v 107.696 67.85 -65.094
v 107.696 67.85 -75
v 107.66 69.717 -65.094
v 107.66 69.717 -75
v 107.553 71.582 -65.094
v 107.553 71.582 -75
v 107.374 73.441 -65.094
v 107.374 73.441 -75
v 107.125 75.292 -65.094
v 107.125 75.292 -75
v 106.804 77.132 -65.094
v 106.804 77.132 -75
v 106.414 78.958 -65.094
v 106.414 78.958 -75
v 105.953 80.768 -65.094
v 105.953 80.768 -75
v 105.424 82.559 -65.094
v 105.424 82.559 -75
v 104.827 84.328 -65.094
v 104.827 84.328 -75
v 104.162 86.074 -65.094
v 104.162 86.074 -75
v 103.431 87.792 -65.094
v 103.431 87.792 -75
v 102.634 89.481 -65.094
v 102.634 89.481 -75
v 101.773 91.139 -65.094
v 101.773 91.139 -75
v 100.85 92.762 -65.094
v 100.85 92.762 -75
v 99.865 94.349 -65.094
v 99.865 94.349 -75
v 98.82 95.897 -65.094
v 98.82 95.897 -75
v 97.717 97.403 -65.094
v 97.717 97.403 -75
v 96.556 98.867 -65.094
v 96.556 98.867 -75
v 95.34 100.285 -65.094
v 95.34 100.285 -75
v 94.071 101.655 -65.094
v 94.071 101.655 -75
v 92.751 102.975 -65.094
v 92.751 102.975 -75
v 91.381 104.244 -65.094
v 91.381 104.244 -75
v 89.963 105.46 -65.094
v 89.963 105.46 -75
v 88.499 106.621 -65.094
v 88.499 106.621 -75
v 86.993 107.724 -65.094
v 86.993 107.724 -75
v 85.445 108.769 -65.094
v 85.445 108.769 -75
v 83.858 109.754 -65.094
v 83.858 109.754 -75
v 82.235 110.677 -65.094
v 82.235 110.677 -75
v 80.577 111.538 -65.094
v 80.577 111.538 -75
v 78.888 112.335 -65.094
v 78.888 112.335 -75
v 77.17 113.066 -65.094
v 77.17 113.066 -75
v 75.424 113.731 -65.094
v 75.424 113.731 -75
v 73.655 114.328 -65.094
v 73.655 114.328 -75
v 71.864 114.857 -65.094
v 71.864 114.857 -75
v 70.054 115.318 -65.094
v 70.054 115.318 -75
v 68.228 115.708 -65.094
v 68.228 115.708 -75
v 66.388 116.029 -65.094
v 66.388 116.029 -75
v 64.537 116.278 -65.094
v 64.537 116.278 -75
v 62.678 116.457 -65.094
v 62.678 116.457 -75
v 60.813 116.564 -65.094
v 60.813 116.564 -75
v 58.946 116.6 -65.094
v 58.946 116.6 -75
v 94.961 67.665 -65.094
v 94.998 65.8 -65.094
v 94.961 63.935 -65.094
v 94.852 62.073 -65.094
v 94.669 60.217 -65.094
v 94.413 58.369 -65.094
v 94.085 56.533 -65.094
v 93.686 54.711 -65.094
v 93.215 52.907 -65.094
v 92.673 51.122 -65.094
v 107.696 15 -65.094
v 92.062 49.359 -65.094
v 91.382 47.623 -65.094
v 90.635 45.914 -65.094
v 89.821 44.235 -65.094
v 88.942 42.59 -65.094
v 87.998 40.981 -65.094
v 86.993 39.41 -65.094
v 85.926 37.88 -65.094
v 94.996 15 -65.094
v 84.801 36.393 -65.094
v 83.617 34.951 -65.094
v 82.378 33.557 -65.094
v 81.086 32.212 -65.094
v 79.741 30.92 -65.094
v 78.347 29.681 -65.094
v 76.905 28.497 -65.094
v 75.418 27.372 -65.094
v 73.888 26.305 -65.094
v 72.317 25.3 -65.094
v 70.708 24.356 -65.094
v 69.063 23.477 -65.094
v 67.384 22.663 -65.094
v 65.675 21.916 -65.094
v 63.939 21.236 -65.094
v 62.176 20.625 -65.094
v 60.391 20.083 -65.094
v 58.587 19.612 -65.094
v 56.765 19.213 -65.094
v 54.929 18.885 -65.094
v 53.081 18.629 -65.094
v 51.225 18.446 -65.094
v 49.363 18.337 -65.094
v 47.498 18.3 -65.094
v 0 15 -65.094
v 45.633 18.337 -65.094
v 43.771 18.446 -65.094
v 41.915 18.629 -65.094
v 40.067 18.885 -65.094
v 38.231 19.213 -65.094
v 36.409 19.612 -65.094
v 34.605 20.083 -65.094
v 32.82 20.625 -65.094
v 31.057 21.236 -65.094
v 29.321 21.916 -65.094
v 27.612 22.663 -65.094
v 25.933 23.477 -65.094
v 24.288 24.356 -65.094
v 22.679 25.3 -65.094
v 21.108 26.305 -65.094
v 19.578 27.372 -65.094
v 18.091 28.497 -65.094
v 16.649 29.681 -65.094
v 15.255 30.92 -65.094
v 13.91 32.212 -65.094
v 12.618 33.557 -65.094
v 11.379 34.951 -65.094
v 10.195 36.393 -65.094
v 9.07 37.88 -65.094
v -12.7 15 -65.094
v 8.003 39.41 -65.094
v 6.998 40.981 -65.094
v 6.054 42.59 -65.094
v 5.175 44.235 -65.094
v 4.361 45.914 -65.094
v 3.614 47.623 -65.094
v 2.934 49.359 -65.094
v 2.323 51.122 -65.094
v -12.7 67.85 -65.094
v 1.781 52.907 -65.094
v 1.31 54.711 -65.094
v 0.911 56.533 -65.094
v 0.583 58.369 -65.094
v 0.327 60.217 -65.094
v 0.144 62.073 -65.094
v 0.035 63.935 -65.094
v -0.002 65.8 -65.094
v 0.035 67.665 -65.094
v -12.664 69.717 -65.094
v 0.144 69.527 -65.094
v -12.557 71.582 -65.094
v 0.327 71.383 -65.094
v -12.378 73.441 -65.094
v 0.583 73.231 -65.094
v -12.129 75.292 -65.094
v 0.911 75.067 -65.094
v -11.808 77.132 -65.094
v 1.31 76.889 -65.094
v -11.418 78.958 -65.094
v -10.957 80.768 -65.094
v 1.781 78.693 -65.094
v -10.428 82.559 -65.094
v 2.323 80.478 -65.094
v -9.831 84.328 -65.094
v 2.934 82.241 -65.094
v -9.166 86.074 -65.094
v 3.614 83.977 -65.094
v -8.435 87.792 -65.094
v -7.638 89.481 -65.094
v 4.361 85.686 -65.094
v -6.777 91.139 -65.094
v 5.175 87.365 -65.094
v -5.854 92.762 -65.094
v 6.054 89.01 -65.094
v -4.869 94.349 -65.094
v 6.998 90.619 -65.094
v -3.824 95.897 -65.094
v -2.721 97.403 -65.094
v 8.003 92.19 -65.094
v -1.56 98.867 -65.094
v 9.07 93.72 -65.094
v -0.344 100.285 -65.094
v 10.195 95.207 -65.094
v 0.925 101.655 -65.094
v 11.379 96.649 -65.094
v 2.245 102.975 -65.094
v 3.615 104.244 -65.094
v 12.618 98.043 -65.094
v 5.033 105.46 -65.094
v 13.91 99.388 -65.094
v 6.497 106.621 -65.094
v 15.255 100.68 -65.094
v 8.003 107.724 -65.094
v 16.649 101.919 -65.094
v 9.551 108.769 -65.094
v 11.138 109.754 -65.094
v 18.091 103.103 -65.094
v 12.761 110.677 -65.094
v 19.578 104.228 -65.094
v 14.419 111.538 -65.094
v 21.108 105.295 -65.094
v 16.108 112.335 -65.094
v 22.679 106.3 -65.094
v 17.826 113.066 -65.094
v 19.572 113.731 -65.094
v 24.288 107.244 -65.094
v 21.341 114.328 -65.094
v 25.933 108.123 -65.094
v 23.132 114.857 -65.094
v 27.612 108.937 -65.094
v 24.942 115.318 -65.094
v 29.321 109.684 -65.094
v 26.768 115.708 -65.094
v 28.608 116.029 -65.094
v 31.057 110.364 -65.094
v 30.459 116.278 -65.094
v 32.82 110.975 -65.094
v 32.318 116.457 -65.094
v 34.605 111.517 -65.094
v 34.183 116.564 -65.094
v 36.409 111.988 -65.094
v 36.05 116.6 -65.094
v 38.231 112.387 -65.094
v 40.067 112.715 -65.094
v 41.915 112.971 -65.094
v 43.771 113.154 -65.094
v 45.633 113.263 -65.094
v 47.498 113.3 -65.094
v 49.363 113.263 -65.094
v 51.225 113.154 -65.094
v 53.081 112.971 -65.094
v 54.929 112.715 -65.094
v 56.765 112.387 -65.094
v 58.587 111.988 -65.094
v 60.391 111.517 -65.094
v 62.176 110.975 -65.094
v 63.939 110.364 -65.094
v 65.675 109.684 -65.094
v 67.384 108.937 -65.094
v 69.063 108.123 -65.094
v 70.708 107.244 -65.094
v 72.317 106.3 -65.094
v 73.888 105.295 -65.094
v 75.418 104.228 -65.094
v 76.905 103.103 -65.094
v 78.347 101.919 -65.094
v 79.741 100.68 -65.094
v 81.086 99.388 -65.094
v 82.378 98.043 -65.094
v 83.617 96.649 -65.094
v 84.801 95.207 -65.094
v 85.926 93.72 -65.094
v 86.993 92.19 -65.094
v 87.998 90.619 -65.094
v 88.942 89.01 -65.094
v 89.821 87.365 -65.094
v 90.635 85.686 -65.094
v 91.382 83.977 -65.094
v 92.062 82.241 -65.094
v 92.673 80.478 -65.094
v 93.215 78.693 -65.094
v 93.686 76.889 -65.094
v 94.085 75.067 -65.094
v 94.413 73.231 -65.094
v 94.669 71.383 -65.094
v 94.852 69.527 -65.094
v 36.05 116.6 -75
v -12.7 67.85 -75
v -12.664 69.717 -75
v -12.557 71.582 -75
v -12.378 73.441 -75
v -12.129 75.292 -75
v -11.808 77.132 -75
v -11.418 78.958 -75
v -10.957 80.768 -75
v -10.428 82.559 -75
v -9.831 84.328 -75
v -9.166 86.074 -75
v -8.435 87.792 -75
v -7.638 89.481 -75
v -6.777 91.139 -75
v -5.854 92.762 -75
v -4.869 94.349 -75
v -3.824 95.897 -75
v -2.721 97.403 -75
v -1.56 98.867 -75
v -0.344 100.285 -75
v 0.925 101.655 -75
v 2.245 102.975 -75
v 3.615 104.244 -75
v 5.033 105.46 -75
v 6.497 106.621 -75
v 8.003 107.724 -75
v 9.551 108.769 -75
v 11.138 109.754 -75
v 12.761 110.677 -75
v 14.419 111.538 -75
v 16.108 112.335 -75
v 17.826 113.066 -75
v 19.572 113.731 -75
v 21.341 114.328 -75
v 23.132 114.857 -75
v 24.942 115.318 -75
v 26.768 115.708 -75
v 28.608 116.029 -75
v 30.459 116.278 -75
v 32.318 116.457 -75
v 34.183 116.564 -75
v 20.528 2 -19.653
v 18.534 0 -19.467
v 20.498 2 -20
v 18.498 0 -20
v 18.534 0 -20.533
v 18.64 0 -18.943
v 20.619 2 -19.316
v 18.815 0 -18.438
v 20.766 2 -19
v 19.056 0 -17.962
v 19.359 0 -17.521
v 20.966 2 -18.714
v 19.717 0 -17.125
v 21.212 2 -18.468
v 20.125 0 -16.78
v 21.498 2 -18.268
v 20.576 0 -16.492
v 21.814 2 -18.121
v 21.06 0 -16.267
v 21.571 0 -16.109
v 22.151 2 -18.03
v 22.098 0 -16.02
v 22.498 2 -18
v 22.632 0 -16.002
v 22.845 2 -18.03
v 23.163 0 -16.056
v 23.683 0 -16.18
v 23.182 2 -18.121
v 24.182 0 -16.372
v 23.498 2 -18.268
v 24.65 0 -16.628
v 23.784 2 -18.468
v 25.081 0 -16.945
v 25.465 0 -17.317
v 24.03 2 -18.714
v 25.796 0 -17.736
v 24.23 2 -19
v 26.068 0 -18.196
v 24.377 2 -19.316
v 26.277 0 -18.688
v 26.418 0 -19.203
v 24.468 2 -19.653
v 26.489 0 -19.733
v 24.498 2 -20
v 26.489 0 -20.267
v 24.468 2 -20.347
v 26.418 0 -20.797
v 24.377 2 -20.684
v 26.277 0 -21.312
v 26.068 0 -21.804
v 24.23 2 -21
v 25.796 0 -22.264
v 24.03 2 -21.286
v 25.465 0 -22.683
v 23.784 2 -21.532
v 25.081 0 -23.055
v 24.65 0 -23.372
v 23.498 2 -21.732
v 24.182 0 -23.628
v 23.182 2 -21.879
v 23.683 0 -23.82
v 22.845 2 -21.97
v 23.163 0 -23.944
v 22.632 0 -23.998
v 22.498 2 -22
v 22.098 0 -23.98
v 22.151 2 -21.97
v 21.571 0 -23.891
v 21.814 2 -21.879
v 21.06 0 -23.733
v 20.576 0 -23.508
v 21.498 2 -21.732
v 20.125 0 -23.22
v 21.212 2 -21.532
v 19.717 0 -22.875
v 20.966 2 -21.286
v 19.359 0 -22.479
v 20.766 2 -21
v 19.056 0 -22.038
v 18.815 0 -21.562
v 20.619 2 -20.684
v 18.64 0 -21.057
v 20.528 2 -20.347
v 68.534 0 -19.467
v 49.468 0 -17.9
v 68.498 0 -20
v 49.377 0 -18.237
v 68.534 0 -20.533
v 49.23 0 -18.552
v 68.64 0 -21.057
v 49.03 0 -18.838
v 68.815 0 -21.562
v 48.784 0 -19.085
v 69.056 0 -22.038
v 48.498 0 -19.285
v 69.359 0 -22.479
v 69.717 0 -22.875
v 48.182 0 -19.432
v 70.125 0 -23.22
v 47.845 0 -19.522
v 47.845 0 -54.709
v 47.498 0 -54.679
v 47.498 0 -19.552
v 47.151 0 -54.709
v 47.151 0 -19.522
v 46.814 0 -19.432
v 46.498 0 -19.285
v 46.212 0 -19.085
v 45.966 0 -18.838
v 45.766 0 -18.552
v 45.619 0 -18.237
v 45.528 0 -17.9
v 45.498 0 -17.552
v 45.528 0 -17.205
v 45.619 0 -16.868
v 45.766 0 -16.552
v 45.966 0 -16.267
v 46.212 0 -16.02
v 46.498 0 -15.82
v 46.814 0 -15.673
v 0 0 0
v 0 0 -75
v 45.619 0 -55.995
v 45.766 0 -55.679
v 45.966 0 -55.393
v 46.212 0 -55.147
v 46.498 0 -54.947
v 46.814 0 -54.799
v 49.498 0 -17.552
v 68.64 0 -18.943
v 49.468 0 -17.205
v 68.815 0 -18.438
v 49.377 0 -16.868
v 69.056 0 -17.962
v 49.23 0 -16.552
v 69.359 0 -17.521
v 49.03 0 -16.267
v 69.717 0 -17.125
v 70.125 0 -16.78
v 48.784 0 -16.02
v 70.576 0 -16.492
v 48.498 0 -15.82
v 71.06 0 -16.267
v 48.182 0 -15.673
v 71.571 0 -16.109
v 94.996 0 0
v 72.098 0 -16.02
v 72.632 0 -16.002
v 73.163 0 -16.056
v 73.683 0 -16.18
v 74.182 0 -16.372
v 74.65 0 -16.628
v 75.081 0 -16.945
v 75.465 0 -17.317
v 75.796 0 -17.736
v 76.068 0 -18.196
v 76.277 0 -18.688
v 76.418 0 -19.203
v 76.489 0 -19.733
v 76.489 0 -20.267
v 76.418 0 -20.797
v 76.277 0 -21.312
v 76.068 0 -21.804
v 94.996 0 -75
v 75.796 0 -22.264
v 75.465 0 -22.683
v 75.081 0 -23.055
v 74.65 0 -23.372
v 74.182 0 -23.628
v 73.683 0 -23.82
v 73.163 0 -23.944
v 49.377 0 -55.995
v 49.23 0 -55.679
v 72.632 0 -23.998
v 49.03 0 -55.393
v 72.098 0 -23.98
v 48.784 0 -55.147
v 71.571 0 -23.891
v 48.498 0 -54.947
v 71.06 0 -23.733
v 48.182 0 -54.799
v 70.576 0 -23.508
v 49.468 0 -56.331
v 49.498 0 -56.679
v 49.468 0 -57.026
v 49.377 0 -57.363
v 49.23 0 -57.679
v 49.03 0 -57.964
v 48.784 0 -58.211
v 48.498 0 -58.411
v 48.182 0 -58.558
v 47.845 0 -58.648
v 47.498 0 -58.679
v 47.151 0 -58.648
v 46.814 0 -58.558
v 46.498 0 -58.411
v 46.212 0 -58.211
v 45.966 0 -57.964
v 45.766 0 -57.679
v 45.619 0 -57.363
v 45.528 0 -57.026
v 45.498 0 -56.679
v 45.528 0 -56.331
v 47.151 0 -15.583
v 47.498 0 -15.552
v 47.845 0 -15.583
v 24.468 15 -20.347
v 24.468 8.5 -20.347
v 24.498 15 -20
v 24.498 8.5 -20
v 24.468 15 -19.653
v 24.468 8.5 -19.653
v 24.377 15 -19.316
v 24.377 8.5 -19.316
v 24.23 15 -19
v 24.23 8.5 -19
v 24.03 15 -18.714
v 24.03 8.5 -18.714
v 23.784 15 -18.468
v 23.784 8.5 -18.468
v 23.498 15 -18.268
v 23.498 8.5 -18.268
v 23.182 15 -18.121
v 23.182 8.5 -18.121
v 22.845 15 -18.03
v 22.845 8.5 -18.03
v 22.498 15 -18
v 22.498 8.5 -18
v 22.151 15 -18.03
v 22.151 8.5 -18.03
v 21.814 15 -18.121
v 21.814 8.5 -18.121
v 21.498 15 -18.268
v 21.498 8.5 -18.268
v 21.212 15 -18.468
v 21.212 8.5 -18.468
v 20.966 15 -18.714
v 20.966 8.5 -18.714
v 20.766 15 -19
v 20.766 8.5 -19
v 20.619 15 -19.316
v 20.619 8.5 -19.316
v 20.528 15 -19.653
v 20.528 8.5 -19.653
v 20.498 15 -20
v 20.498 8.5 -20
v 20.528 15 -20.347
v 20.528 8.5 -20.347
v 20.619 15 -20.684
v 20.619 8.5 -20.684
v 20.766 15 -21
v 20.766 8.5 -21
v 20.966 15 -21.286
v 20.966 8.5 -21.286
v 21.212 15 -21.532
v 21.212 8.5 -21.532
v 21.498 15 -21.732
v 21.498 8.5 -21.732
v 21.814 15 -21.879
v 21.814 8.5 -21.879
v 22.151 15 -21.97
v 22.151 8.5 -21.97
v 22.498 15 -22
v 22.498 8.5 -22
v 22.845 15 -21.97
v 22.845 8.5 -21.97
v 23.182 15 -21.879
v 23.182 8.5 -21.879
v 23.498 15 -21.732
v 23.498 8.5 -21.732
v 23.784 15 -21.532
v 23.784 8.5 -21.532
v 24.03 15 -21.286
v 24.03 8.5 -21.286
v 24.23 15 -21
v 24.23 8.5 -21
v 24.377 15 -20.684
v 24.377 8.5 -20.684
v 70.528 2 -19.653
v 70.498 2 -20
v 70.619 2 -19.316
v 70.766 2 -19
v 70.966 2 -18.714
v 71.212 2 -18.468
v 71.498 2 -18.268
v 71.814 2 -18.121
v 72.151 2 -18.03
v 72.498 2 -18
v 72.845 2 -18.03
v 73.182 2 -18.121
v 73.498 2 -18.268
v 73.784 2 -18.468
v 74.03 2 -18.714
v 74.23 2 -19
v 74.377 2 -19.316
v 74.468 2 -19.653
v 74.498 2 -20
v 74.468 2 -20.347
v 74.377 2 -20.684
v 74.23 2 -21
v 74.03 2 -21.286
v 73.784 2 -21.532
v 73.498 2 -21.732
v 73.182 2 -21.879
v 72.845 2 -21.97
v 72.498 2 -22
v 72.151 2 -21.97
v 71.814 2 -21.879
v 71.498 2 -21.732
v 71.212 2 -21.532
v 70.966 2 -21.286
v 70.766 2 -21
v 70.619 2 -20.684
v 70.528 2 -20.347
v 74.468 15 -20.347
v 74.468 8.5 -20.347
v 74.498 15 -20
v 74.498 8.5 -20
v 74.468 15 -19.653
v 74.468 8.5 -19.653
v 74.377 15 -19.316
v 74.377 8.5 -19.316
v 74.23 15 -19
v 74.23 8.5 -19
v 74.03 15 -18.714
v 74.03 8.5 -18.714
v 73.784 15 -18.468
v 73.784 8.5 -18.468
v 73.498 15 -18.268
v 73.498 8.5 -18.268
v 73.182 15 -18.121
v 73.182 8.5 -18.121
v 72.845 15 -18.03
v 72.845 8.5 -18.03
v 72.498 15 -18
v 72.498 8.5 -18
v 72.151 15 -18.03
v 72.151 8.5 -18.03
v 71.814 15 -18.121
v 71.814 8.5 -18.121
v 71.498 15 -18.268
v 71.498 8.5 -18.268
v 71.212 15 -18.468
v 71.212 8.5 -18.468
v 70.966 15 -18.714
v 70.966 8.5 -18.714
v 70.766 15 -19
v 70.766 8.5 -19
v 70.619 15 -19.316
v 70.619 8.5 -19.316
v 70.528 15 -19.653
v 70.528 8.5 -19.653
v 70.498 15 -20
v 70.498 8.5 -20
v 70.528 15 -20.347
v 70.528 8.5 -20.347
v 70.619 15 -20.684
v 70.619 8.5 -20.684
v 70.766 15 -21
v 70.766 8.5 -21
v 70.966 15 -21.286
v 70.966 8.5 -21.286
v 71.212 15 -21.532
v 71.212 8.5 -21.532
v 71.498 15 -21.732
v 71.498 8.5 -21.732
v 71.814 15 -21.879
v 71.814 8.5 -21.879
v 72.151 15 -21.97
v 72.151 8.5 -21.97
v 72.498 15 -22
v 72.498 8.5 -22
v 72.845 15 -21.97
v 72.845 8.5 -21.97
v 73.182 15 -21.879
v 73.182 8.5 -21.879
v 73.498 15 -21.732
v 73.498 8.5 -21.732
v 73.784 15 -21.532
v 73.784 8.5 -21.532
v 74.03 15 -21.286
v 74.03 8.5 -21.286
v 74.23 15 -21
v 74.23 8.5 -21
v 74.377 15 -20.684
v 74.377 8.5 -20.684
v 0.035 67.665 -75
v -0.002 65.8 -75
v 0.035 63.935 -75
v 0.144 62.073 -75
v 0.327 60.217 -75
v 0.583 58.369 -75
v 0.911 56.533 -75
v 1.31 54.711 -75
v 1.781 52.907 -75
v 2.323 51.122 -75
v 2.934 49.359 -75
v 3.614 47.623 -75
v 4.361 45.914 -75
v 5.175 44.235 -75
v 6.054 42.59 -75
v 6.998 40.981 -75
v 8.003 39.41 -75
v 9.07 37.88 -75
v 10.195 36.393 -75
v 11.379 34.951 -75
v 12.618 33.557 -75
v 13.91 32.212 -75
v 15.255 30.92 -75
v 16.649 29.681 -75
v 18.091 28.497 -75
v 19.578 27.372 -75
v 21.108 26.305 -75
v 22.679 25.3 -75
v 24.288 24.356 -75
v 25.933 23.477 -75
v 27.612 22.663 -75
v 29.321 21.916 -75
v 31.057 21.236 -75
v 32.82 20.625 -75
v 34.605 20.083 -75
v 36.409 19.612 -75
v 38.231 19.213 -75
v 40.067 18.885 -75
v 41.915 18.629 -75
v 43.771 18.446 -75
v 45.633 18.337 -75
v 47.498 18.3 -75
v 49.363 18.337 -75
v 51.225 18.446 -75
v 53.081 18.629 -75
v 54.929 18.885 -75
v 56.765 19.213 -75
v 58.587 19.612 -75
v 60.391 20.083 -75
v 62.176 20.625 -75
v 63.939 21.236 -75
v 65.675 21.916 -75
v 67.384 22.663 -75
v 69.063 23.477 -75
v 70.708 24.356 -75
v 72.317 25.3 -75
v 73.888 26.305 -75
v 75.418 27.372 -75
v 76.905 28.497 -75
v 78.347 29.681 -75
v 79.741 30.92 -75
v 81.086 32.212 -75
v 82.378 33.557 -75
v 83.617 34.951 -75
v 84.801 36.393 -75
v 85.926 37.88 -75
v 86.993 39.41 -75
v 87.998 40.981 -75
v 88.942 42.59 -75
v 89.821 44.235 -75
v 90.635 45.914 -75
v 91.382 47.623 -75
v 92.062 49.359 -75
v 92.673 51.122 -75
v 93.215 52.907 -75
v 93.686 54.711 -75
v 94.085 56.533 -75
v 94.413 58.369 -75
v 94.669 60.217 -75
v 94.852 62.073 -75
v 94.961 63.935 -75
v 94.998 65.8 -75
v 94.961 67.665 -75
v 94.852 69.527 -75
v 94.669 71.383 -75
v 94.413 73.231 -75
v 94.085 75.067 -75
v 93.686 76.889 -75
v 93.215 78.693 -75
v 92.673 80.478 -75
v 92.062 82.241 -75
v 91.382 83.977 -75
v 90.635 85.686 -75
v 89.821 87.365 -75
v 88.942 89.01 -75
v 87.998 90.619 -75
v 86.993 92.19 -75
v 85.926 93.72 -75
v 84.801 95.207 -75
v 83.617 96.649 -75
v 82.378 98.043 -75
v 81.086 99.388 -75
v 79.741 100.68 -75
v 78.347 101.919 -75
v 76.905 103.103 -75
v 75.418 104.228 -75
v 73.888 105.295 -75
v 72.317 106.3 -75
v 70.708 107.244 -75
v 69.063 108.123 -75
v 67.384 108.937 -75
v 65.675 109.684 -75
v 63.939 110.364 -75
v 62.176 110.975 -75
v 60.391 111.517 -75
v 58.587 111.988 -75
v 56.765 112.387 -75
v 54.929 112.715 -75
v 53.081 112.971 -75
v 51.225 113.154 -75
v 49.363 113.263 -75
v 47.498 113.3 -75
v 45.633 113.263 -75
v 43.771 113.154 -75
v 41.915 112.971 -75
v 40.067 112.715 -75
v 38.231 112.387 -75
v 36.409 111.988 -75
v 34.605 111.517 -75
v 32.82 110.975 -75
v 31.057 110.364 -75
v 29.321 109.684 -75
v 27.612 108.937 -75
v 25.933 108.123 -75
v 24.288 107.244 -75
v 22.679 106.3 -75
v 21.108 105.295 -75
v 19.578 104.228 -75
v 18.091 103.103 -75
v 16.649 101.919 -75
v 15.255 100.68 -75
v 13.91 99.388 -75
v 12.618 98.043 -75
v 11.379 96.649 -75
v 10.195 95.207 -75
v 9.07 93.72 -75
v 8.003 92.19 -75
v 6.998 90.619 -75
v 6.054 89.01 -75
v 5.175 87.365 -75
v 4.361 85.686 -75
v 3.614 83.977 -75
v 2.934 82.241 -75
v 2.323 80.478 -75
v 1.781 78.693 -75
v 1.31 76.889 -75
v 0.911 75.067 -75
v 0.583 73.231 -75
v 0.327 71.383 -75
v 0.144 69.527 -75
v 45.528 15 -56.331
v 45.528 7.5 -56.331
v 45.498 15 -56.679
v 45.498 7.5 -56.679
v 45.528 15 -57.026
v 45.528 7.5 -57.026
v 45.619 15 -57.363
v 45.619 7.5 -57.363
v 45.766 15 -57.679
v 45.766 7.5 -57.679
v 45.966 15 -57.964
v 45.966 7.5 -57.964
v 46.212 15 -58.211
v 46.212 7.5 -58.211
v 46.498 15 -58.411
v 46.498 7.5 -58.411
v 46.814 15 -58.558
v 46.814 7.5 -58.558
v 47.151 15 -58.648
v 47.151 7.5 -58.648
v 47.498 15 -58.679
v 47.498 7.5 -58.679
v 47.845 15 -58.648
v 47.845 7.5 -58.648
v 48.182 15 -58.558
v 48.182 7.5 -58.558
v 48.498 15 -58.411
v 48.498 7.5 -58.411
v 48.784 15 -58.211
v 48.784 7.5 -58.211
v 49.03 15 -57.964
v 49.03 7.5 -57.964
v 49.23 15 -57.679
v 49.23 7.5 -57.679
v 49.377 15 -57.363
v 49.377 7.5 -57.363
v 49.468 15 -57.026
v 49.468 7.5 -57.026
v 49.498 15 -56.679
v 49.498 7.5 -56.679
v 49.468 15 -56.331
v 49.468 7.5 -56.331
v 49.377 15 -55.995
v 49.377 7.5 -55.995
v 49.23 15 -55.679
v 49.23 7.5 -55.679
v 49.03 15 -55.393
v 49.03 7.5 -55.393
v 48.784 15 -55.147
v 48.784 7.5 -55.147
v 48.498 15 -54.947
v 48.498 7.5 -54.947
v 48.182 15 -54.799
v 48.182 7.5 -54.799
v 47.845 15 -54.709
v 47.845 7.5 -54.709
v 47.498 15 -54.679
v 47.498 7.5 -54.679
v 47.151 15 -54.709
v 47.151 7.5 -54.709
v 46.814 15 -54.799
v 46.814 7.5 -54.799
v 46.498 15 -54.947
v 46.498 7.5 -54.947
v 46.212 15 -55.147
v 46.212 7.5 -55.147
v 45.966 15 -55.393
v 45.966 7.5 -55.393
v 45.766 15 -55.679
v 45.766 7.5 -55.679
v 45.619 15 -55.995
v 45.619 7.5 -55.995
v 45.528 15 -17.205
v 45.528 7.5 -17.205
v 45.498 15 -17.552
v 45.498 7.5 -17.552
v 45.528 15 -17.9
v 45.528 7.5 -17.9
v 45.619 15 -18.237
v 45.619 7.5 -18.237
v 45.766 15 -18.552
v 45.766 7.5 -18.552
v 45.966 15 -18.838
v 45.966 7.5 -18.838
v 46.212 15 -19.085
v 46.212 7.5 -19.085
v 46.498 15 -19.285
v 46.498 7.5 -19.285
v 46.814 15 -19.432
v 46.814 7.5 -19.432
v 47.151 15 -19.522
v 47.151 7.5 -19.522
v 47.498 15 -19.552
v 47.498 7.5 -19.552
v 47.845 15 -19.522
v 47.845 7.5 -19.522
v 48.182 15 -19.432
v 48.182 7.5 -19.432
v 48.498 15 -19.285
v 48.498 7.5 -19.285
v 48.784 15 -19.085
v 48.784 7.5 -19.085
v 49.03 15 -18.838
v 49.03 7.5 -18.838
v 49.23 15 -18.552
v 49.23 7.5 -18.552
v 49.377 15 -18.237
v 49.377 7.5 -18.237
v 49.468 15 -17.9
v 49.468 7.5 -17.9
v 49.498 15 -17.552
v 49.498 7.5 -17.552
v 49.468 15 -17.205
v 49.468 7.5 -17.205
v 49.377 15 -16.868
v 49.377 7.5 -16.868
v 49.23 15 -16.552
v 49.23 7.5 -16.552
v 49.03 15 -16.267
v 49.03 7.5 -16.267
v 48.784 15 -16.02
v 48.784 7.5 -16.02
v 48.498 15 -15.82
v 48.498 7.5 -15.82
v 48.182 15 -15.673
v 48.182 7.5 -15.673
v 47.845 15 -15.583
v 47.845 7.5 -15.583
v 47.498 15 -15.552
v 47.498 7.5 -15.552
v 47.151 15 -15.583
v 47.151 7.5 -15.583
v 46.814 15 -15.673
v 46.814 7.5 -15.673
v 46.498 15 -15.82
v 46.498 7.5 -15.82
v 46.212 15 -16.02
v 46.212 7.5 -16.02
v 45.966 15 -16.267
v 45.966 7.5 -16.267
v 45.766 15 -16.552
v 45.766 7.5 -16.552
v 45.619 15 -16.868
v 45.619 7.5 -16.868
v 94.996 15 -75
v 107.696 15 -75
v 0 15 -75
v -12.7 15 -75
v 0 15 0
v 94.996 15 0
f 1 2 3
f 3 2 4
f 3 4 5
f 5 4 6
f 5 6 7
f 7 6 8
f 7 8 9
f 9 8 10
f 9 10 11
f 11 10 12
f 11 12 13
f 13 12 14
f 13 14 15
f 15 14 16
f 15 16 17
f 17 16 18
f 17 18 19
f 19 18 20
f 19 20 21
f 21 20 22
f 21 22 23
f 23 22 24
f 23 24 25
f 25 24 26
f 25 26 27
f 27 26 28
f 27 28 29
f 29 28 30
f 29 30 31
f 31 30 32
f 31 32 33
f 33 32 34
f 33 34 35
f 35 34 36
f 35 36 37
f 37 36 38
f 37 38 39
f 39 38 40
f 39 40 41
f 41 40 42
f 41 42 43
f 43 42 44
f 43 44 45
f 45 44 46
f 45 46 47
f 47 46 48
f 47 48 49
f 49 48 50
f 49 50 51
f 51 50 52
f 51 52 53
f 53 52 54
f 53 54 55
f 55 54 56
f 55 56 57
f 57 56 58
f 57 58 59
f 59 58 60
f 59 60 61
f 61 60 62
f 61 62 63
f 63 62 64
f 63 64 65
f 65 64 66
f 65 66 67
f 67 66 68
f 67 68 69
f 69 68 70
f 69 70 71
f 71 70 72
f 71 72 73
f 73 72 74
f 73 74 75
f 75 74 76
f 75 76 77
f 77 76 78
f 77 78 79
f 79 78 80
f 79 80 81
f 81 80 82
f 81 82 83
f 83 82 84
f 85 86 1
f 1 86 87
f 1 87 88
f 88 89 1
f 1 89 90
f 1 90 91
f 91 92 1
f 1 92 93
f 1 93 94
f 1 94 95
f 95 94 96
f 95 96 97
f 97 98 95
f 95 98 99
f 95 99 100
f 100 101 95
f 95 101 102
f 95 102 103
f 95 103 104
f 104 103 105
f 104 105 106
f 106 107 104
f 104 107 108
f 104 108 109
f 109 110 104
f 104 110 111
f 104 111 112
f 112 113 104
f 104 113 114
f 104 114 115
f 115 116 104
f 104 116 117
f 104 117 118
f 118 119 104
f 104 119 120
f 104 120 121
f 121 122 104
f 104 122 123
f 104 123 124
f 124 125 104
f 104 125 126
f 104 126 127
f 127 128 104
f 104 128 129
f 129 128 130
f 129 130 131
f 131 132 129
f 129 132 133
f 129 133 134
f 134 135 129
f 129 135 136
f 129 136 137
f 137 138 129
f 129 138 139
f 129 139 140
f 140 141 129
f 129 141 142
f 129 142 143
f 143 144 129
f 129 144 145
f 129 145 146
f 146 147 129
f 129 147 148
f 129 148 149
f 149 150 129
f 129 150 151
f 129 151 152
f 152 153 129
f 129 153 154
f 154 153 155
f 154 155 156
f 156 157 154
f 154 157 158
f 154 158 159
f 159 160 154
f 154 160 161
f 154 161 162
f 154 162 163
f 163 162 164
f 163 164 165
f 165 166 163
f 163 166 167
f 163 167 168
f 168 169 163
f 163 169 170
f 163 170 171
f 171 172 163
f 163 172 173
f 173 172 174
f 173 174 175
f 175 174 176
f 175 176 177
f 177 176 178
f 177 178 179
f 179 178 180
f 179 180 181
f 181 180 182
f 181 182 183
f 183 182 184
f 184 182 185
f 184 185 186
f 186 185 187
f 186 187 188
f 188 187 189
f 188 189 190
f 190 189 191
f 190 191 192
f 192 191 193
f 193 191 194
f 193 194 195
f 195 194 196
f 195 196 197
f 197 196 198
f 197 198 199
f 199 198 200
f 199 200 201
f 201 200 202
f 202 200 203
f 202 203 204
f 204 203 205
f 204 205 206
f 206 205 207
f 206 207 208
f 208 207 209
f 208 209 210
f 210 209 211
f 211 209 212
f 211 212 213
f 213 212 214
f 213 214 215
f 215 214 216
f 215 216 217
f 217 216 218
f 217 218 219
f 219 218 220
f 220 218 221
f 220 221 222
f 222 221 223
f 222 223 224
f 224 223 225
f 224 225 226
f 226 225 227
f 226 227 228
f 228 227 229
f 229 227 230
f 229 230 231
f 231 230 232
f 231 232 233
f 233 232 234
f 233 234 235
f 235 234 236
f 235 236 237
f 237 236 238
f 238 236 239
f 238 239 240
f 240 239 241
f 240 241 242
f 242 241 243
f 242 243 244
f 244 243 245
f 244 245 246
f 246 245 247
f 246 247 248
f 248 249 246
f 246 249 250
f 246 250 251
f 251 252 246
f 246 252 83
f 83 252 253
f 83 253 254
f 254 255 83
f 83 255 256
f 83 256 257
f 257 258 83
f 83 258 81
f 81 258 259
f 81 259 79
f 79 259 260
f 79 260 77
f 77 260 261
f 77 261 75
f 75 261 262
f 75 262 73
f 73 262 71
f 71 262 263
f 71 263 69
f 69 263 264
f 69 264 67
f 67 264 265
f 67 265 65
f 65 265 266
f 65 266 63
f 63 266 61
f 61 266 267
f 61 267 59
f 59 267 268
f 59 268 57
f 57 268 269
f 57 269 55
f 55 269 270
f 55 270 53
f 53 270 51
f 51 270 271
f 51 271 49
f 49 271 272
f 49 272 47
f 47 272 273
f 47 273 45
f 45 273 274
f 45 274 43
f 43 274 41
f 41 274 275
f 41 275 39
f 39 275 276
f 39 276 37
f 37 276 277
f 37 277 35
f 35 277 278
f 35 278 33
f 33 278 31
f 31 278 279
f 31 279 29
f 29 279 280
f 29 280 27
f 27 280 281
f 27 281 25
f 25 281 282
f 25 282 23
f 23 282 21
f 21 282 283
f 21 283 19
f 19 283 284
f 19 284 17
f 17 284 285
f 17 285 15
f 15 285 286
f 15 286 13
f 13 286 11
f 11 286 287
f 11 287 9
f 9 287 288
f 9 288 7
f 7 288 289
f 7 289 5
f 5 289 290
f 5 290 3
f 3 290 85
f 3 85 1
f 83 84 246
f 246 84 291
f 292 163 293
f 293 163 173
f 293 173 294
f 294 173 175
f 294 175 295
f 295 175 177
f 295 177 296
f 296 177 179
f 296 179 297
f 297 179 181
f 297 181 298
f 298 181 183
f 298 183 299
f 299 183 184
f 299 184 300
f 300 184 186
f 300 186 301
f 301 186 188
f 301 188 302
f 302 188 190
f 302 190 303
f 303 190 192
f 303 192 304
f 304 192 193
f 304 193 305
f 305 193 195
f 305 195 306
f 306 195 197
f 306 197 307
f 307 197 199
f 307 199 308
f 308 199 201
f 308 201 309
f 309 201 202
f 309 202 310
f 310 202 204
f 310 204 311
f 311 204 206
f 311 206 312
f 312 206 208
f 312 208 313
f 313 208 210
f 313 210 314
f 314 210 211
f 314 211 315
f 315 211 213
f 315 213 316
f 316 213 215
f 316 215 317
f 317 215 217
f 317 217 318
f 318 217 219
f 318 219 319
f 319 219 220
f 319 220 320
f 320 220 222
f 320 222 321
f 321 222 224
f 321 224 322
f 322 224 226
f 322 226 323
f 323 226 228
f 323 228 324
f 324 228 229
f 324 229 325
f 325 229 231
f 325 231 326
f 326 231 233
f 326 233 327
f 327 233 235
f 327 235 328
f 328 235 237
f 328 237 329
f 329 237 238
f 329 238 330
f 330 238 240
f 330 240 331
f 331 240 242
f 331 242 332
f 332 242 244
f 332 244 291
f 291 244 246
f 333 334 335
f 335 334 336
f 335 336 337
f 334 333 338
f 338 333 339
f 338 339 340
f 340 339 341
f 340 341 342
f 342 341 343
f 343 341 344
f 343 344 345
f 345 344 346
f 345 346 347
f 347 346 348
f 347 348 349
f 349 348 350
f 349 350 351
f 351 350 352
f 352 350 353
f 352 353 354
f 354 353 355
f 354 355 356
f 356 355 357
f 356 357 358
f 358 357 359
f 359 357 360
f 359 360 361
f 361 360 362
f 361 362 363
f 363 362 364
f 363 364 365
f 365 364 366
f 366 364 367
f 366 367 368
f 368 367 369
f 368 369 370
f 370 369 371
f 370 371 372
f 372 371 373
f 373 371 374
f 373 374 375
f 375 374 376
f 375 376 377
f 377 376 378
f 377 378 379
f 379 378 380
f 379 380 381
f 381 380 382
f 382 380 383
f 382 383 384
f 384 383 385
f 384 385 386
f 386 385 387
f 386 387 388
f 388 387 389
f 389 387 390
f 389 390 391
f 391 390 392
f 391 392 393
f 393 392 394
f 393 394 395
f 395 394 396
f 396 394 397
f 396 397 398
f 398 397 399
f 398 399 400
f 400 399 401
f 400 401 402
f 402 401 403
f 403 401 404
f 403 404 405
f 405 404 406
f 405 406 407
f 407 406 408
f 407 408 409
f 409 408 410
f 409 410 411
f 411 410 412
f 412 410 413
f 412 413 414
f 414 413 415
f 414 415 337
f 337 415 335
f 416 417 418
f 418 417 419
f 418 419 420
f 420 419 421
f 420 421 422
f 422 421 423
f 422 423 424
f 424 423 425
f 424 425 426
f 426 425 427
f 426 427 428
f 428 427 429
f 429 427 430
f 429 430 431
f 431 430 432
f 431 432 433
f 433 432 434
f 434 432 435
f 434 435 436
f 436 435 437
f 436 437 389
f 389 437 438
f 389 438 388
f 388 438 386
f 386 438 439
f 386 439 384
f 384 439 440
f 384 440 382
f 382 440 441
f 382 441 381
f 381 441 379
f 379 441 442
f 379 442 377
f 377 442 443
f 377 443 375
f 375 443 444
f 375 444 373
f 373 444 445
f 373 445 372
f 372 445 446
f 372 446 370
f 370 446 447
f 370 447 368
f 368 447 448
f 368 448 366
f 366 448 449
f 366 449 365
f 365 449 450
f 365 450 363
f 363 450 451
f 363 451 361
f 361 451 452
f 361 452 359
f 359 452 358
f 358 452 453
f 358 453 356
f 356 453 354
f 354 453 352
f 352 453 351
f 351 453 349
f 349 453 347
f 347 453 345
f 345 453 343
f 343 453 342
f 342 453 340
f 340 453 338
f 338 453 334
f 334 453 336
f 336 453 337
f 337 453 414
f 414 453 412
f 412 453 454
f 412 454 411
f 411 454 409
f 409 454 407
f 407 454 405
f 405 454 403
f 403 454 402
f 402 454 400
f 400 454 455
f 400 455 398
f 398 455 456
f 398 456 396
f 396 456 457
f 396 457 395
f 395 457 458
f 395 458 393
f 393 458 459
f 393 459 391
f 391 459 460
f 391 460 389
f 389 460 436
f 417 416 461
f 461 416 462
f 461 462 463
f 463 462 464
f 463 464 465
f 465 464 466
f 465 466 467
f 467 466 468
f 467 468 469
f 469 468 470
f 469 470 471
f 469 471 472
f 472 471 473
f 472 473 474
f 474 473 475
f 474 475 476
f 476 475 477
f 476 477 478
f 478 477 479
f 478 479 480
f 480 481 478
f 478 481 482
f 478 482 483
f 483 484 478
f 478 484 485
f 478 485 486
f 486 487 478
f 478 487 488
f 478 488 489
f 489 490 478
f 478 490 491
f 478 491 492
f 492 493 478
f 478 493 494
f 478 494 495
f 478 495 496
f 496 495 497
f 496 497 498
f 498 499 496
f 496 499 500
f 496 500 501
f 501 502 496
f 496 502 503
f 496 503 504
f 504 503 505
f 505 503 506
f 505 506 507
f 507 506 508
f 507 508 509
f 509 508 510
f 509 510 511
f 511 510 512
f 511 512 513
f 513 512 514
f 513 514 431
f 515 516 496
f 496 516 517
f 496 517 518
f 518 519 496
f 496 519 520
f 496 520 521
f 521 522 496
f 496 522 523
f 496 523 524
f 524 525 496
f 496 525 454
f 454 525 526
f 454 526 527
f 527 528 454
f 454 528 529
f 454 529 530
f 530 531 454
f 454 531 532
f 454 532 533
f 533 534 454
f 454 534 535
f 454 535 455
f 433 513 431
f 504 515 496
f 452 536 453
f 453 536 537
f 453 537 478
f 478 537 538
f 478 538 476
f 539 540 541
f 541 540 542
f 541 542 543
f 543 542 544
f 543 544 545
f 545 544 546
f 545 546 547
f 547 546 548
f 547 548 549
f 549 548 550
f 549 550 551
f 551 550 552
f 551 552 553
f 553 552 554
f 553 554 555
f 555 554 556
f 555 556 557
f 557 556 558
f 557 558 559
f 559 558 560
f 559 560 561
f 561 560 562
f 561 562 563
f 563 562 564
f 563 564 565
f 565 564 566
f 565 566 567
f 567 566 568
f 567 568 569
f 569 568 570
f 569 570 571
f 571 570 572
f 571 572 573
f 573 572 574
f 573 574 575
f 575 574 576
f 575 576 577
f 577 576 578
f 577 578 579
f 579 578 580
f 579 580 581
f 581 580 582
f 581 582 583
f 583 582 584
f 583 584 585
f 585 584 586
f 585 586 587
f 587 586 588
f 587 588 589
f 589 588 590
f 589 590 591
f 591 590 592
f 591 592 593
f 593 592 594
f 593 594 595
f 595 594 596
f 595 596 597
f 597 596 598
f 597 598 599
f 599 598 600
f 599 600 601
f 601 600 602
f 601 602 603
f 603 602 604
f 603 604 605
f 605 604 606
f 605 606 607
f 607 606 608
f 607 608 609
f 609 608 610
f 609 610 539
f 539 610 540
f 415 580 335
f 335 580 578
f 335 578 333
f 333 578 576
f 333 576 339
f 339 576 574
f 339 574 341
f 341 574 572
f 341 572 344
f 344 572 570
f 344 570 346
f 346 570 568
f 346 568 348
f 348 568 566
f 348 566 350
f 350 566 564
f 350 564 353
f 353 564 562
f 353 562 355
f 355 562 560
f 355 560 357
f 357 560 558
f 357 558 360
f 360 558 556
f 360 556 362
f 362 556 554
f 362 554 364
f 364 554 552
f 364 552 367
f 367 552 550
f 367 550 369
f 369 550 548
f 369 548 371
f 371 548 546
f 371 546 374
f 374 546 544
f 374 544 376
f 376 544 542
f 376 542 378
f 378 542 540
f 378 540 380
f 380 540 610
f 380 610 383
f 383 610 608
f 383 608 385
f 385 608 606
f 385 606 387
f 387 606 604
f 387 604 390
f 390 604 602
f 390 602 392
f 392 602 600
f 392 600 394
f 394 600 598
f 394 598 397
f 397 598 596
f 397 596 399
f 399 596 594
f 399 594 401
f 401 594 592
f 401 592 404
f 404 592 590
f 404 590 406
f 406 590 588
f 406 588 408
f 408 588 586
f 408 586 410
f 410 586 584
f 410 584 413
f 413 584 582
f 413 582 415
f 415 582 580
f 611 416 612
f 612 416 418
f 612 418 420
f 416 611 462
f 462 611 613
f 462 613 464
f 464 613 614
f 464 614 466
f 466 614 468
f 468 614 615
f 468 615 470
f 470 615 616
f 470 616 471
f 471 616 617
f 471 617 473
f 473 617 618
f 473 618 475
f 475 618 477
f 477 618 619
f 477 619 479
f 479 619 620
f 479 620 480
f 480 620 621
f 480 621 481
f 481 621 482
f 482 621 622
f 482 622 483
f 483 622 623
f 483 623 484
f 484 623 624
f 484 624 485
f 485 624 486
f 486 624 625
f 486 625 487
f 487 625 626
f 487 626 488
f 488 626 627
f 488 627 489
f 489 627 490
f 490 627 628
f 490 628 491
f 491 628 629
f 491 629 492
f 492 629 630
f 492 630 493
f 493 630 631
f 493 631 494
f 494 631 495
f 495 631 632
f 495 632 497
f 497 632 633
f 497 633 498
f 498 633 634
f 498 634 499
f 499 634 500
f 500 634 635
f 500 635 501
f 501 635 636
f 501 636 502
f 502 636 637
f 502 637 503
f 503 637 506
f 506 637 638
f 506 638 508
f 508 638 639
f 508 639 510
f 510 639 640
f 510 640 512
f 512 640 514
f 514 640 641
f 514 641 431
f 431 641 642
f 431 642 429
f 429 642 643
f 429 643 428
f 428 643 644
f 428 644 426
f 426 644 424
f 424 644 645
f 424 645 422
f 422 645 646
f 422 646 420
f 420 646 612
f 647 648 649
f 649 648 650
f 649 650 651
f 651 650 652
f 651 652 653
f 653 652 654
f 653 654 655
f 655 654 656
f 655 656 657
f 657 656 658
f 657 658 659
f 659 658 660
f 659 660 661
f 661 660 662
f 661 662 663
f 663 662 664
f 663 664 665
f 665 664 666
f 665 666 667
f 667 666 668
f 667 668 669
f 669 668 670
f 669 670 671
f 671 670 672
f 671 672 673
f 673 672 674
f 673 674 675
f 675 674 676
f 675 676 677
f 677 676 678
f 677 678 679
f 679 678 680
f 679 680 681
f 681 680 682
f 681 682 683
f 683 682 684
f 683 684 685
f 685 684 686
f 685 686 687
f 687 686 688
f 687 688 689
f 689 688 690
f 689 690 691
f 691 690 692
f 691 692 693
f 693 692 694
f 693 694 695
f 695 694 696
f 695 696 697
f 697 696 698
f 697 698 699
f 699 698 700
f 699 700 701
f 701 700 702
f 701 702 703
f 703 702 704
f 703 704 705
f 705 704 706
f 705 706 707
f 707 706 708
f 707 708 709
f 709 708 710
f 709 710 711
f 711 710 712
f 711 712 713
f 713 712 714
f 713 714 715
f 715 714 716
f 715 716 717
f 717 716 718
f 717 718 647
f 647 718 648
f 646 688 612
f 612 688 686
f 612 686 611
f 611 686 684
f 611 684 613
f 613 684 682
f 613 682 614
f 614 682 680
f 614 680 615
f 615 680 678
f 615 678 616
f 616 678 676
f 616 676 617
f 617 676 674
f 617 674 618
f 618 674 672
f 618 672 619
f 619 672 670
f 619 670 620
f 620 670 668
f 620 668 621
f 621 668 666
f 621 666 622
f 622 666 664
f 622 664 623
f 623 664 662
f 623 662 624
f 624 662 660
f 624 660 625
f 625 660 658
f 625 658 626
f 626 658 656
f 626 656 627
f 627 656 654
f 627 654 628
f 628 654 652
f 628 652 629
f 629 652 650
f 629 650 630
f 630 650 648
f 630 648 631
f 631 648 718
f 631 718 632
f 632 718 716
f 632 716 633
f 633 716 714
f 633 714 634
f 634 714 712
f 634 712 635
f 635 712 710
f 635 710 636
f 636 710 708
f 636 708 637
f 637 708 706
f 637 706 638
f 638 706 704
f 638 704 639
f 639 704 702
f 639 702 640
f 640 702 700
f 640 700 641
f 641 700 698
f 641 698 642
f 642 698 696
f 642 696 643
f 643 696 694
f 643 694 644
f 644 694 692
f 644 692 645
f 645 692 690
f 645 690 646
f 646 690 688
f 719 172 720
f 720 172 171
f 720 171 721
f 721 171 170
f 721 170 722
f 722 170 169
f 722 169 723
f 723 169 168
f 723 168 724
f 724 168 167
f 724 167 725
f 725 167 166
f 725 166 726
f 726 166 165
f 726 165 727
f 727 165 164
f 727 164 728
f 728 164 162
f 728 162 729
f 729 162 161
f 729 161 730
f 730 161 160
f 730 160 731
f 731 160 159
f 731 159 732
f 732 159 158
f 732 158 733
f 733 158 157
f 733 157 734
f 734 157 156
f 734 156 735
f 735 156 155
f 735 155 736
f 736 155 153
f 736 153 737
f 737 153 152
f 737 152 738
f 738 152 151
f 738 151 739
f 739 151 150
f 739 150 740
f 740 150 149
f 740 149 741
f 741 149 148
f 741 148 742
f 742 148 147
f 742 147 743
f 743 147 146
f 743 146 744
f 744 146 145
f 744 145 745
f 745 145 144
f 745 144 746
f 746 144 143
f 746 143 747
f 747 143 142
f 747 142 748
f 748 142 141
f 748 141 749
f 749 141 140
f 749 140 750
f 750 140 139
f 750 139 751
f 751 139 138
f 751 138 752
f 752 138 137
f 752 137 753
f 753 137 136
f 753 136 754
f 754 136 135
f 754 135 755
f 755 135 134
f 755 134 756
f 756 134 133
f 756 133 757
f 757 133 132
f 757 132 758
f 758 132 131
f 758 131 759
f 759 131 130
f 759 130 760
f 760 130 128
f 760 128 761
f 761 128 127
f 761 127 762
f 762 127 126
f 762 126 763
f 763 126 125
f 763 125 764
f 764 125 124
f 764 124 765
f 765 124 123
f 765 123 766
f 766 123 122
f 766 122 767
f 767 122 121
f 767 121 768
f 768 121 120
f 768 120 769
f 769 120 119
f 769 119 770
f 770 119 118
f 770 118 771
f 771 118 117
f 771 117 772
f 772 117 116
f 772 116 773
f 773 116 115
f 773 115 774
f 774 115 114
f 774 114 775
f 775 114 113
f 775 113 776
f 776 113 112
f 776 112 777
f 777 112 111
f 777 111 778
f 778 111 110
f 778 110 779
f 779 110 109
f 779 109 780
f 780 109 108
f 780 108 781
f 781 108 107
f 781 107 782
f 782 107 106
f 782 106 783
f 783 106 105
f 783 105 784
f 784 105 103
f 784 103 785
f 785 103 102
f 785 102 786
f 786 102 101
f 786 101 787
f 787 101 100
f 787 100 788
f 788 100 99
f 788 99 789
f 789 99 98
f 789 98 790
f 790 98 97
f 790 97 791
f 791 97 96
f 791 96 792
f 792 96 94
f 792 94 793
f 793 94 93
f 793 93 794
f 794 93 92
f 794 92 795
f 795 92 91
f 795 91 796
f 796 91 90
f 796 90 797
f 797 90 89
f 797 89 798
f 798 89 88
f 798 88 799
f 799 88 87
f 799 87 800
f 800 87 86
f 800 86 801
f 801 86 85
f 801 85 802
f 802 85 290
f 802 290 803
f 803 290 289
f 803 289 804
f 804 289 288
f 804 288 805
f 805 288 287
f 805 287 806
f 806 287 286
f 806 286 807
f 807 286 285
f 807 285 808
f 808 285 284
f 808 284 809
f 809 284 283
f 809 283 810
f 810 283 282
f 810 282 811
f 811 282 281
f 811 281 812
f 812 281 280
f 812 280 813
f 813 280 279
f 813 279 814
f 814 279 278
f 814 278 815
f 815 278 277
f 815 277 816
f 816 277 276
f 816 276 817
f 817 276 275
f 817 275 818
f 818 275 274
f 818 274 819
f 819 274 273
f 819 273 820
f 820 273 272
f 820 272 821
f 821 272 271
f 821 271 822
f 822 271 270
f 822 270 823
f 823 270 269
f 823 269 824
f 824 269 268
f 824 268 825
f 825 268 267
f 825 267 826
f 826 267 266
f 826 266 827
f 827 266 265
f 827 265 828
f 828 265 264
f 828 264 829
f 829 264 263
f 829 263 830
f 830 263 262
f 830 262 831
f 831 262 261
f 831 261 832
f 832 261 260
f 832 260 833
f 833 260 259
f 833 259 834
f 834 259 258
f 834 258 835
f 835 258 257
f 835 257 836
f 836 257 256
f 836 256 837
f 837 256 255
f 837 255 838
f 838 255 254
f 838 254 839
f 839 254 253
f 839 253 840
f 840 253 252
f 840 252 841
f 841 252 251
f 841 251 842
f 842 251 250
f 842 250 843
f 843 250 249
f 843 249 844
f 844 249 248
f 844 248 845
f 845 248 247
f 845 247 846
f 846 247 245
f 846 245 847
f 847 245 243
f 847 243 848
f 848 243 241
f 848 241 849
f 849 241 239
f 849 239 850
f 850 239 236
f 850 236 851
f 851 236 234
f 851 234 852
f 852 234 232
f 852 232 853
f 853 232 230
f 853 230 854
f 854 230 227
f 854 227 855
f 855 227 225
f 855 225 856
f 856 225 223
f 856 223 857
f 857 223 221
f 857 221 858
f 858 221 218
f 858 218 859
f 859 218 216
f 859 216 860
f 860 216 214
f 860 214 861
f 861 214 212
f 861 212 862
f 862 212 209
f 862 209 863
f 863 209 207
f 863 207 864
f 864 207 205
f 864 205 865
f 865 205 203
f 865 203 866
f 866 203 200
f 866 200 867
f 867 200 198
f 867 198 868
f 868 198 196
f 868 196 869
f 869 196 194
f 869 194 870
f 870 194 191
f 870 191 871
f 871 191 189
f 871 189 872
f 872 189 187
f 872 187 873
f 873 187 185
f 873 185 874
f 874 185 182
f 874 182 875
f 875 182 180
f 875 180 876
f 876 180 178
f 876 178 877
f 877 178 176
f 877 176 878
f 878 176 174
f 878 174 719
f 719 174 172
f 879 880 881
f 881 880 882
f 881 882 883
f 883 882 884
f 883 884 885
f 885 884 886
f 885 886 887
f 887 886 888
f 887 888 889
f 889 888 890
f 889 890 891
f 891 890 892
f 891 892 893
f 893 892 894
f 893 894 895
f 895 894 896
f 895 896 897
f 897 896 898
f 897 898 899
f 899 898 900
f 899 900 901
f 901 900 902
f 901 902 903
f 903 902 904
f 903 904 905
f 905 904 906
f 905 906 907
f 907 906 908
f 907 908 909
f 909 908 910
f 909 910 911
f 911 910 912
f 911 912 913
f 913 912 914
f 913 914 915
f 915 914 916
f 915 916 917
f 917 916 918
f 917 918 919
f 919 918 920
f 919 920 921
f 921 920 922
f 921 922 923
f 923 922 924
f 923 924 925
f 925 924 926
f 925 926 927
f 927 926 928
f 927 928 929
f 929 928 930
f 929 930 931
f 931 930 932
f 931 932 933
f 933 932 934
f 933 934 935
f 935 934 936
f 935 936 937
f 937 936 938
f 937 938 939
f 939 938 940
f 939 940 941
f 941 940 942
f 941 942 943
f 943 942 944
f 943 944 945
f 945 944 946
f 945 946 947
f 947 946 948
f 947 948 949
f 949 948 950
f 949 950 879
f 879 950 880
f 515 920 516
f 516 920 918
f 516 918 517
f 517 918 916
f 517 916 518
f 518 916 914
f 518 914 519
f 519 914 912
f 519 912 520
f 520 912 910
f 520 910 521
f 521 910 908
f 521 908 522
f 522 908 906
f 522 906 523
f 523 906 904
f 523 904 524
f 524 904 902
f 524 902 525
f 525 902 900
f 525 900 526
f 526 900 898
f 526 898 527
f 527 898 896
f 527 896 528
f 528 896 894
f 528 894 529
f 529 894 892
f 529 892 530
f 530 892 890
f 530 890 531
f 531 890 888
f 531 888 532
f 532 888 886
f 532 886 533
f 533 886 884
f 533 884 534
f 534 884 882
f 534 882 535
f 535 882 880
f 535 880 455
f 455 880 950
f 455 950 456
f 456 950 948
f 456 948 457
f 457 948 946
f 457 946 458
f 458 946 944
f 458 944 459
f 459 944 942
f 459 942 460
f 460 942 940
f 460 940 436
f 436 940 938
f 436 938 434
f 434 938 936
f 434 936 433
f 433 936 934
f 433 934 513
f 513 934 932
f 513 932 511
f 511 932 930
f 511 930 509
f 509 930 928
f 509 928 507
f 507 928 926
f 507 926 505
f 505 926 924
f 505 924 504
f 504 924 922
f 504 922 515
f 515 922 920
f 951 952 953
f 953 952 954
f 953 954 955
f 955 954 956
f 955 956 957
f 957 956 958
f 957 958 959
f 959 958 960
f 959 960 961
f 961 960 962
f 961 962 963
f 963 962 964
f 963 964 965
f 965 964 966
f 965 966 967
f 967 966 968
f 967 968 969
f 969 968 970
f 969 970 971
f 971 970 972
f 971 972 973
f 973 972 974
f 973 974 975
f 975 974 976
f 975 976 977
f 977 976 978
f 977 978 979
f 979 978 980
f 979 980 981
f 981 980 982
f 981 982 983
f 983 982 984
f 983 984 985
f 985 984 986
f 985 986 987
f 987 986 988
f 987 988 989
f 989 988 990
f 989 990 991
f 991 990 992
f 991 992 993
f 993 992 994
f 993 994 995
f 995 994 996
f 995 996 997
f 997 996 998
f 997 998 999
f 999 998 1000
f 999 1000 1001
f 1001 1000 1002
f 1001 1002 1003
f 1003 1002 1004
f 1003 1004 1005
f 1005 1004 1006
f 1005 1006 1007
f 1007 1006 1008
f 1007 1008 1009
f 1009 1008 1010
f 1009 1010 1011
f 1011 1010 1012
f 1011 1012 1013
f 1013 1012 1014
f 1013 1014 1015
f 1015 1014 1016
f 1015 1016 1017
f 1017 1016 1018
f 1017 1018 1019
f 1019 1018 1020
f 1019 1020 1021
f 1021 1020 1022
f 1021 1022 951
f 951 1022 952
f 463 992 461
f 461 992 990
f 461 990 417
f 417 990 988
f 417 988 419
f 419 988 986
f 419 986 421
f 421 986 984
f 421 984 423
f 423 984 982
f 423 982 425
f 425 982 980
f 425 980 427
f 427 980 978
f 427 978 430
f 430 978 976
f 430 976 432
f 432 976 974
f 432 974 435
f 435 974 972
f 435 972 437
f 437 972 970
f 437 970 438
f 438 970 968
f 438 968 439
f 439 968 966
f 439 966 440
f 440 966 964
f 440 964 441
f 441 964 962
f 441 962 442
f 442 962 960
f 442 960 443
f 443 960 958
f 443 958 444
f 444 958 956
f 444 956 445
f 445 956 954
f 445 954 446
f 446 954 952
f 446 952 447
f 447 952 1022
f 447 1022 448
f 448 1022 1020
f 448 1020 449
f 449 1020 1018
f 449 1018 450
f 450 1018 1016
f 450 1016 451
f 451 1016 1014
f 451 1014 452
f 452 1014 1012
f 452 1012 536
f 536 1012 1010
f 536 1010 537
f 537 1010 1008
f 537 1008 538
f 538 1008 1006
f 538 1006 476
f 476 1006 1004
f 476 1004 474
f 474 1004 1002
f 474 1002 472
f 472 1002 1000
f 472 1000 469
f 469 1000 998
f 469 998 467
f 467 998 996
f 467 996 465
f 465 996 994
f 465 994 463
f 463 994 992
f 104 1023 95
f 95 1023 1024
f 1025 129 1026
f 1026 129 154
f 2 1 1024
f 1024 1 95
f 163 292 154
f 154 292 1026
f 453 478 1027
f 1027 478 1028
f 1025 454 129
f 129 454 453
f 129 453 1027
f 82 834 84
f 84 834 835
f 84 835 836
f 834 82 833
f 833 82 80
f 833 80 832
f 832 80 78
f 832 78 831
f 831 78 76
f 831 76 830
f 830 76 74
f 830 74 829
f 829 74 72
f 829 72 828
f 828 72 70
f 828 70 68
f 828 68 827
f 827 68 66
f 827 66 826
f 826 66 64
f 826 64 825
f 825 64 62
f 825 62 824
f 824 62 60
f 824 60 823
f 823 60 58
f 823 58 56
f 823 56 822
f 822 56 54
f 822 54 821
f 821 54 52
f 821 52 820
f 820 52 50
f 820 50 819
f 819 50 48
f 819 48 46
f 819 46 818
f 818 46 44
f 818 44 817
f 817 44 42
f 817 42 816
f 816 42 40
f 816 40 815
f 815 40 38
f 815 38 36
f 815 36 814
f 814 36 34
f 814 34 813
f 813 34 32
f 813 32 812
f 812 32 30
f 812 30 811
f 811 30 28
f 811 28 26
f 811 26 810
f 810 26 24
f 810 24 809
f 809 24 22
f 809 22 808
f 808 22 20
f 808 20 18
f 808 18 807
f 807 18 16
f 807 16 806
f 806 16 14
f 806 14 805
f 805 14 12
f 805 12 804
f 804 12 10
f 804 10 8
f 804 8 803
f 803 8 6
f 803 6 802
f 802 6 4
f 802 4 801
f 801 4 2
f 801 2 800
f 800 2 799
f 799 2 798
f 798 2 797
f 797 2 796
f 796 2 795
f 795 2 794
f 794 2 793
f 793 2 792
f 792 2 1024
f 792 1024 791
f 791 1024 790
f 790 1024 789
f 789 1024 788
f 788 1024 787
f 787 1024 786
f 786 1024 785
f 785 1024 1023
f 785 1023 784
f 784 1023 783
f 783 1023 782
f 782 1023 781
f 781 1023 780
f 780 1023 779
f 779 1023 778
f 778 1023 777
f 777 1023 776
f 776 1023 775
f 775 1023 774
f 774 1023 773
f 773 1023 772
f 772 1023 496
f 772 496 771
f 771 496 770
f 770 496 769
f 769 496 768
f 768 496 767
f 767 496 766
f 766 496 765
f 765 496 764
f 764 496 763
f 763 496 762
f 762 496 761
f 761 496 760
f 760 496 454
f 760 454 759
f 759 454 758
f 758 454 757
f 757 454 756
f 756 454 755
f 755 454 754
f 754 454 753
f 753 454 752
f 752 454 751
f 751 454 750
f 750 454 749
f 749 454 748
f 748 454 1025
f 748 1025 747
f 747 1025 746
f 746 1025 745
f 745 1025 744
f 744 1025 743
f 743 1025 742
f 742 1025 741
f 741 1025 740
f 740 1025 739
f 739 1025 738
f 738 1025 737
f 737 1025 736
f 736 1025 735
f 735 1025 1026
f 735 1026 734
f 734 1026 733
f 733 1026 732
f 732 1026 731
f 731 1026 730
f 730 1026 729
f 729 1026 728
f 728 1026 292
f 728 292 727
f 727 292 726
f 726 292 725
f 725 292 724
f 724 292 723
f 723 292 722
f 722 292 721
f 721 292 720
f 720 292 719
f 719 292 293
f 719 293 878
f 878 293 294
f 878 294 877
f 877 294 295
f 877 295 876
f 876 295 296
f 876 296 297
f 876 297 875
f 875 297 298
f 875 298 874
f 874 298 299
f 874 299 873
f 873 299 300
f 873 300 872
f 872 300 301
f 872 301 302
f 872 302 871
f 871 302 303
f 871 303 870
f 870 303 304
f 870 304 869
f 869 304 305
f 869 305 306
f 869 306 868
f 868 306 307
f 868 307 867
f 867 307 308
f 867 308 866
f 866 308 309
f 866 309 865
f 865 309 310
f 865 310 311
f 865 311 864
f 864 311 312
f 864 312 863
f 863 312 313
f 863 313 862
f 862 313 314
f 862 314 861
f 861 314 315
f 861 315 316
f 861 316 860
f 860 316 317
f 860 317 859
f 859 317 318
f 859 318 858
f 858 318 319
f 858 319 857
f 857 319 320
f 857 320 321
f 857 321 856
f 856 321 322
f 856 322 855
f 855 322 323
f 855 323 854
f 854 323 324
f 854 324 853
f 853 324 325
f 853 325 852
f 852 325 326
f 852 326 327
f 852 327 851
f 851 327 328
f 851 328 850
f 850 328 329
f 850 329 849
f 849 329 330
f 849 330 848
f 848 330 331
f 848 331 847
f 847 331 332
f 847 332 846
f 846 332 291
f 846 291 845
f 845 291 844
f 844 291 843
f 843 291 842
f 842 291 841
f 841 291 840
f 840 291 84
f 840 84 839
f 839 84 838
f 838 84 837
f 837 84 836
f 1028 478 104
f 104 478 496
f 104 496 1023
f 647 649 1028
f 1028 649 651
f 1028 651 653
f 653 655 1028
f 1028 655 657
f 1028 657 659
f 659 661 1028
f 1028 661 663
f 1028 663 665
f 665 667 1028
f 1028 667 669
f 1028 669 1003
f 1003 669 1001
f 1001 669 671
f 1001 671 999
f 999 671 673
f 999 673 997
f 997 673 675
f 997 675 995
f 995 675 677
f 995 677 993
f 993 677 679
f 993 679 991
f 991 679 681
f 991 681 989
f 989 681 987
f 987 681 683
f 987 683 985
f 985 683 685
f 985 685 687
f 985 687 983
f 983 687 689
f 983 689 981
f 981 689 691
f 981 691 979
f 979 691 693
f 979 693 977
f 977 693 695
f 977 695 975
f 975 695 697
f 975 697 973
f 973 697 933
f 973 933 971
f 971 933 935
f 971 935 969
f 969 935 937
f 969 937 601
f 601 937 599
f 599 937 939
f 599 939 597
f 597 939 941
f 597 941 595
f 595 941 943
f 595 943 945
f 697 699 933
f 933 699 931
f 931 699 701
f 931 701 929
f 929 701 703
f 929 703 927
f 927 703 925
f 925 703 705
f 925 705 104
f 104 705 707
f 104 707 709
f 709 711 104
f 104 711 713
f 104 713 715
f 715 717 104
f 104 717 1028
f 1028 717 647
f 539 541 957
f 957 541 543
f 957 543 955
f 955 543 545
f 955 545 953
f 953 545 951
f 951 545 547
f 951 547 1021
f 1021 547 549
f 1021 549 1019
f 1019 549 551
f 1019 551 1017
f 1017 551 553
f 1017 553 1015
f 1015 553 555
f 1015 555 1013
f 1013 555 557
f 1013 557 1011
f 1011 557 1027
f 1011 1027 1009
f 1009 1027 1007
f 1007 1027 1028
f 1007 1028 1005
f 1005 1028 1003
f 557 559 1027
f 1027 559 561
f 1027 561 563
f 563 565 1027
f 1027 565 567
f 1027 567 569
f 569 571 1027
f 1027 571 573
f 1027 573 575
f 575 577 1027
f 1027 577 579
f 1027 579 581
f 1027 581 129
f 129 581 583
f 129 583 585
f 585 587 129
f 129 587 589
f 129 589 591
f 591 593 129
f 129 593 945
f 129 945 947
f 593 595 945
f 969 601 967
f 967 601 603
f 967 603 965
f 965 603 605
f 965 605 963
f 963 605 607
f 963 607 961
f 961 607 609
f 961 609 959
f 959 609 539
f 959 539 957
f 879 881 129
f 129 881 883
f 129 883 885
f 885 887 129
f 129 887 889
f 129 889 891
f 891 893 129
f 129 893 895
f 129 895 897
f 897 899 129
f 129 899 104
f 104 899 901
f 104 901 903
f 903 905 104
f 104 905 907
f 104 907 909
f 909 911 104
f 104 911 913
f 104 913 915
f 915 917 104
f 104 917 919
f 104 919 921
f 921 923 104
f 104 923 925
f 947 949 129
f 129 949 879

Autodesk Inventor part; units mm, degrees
ref_plane "YZ Plane" through (0, 0, 0) normal (1, 0, 0) x (0, 1, 0)
ref_plane "XZ Plane" through (0, 0, 0) normal (0, 1, 0) x (-1, 0, 0)
ref_plane "XY Plane" through (0, 0, 0) normal (0, 0, 1) x (1, 0, 0)
sketch "Sketch1" plane through (0, 0, 0) normal (0, 1, 0) x (-1, 0, 0)
  line L0 (0, 0) -> (-94.996, 0)
  line L1 (-94.996, 0) -> (-94.996, -75)
  line L2 (-94.996, -75) -> (0, -75)
  line L3 (0, -75) -> (0, 0)
  dimension "d0" = 94.996
  dimension "d1" = 75
extrude "Extrusion1" add sketch "Sketch1" along normal blind 15
sketch "Sketch2" plane through (0, 15, 0) normal (0, 1, 0) x (1, 0, 0)
  line L0 (94.996, 75) -> (0, 75) projected
  line L1 (0, 75) -> (-12.7, 75)
  line L2 (94.996, 0) -> (94.996, 75) projected
  line L3 (94.996, 75) -> (107.696, 75)
  line L4 (107.696, 75) -> (107.696, 65.094)
  line L5 (107.696, 65.094) -> (-12.7, 65.094)
  line L6 (-12.7, 65.094) -> (-12.7, 75)
  line L7 (0, 75) -> (94.996, 75)
  point P0 (0, 0)
  dimension "d4" = 12.7
  dimension "d5" = 12.7
  dimension "d6" = 9.906
extrude "Extrusion2" add sketch "Sketch2" along normal blind 101.6
sketch "Sketch4" plane through (0, 0, 0) normal (0, -1, 0) x (1, 0, 0)
  line L0 (0, 0) -> (94.996, 0) projected
  line L1 (94.996, -75) -> (0, -75) projected
  circle A0 centre (47.498, -17.5525) radius 2
  circle A1 centre (47.498, -56.6788) radius 2
  dimension "d12" = 4
  dimension "d13" = 4
extrude "Extrusion4" cut sketch "Sketch4" against normal through all
sketch "Sketch5" plane through (-12.7, 15, -65.094) normal (0, 0, 1) x (1, 0, 0)
  line L0 (58.198, 0) -> (62.198, 0) projected
  line L1 (120.396, 0) -> (120.396, 101.6) projected
  circle A0 centre (60.198, 50.8) radius 47.5
  point P0 (12.7, -15)
  dimension "d17" = 95
extrude "Extrusion5" cut sketch "Sketch5" against normal through all
sketch "Sketch6" plane through (0, 15, 0) normal (0, 1, 0) x (1, 0, 0)
  line L0 (0, 0) -> (94.996, 0) projected
  circle A0 centre (72.498, 20) radius 2
  circle A1 centre (22.498, 20) radius 2
  dimension "d23" = 4
extrude "Extrusion6" cut sketch "Sketch6" against normal through all
chamfer "Chamfer1" distance 2 angle 45 2 edges at (70.498, 0, -20) (20.498, 0, -20)
fillet "Fillet1" radius 48.75 2 edges at (-12.7, 116.6, -70.047) (107.696, 116.6, -70.047)
properties part number "Harmonic Drive Mount"
